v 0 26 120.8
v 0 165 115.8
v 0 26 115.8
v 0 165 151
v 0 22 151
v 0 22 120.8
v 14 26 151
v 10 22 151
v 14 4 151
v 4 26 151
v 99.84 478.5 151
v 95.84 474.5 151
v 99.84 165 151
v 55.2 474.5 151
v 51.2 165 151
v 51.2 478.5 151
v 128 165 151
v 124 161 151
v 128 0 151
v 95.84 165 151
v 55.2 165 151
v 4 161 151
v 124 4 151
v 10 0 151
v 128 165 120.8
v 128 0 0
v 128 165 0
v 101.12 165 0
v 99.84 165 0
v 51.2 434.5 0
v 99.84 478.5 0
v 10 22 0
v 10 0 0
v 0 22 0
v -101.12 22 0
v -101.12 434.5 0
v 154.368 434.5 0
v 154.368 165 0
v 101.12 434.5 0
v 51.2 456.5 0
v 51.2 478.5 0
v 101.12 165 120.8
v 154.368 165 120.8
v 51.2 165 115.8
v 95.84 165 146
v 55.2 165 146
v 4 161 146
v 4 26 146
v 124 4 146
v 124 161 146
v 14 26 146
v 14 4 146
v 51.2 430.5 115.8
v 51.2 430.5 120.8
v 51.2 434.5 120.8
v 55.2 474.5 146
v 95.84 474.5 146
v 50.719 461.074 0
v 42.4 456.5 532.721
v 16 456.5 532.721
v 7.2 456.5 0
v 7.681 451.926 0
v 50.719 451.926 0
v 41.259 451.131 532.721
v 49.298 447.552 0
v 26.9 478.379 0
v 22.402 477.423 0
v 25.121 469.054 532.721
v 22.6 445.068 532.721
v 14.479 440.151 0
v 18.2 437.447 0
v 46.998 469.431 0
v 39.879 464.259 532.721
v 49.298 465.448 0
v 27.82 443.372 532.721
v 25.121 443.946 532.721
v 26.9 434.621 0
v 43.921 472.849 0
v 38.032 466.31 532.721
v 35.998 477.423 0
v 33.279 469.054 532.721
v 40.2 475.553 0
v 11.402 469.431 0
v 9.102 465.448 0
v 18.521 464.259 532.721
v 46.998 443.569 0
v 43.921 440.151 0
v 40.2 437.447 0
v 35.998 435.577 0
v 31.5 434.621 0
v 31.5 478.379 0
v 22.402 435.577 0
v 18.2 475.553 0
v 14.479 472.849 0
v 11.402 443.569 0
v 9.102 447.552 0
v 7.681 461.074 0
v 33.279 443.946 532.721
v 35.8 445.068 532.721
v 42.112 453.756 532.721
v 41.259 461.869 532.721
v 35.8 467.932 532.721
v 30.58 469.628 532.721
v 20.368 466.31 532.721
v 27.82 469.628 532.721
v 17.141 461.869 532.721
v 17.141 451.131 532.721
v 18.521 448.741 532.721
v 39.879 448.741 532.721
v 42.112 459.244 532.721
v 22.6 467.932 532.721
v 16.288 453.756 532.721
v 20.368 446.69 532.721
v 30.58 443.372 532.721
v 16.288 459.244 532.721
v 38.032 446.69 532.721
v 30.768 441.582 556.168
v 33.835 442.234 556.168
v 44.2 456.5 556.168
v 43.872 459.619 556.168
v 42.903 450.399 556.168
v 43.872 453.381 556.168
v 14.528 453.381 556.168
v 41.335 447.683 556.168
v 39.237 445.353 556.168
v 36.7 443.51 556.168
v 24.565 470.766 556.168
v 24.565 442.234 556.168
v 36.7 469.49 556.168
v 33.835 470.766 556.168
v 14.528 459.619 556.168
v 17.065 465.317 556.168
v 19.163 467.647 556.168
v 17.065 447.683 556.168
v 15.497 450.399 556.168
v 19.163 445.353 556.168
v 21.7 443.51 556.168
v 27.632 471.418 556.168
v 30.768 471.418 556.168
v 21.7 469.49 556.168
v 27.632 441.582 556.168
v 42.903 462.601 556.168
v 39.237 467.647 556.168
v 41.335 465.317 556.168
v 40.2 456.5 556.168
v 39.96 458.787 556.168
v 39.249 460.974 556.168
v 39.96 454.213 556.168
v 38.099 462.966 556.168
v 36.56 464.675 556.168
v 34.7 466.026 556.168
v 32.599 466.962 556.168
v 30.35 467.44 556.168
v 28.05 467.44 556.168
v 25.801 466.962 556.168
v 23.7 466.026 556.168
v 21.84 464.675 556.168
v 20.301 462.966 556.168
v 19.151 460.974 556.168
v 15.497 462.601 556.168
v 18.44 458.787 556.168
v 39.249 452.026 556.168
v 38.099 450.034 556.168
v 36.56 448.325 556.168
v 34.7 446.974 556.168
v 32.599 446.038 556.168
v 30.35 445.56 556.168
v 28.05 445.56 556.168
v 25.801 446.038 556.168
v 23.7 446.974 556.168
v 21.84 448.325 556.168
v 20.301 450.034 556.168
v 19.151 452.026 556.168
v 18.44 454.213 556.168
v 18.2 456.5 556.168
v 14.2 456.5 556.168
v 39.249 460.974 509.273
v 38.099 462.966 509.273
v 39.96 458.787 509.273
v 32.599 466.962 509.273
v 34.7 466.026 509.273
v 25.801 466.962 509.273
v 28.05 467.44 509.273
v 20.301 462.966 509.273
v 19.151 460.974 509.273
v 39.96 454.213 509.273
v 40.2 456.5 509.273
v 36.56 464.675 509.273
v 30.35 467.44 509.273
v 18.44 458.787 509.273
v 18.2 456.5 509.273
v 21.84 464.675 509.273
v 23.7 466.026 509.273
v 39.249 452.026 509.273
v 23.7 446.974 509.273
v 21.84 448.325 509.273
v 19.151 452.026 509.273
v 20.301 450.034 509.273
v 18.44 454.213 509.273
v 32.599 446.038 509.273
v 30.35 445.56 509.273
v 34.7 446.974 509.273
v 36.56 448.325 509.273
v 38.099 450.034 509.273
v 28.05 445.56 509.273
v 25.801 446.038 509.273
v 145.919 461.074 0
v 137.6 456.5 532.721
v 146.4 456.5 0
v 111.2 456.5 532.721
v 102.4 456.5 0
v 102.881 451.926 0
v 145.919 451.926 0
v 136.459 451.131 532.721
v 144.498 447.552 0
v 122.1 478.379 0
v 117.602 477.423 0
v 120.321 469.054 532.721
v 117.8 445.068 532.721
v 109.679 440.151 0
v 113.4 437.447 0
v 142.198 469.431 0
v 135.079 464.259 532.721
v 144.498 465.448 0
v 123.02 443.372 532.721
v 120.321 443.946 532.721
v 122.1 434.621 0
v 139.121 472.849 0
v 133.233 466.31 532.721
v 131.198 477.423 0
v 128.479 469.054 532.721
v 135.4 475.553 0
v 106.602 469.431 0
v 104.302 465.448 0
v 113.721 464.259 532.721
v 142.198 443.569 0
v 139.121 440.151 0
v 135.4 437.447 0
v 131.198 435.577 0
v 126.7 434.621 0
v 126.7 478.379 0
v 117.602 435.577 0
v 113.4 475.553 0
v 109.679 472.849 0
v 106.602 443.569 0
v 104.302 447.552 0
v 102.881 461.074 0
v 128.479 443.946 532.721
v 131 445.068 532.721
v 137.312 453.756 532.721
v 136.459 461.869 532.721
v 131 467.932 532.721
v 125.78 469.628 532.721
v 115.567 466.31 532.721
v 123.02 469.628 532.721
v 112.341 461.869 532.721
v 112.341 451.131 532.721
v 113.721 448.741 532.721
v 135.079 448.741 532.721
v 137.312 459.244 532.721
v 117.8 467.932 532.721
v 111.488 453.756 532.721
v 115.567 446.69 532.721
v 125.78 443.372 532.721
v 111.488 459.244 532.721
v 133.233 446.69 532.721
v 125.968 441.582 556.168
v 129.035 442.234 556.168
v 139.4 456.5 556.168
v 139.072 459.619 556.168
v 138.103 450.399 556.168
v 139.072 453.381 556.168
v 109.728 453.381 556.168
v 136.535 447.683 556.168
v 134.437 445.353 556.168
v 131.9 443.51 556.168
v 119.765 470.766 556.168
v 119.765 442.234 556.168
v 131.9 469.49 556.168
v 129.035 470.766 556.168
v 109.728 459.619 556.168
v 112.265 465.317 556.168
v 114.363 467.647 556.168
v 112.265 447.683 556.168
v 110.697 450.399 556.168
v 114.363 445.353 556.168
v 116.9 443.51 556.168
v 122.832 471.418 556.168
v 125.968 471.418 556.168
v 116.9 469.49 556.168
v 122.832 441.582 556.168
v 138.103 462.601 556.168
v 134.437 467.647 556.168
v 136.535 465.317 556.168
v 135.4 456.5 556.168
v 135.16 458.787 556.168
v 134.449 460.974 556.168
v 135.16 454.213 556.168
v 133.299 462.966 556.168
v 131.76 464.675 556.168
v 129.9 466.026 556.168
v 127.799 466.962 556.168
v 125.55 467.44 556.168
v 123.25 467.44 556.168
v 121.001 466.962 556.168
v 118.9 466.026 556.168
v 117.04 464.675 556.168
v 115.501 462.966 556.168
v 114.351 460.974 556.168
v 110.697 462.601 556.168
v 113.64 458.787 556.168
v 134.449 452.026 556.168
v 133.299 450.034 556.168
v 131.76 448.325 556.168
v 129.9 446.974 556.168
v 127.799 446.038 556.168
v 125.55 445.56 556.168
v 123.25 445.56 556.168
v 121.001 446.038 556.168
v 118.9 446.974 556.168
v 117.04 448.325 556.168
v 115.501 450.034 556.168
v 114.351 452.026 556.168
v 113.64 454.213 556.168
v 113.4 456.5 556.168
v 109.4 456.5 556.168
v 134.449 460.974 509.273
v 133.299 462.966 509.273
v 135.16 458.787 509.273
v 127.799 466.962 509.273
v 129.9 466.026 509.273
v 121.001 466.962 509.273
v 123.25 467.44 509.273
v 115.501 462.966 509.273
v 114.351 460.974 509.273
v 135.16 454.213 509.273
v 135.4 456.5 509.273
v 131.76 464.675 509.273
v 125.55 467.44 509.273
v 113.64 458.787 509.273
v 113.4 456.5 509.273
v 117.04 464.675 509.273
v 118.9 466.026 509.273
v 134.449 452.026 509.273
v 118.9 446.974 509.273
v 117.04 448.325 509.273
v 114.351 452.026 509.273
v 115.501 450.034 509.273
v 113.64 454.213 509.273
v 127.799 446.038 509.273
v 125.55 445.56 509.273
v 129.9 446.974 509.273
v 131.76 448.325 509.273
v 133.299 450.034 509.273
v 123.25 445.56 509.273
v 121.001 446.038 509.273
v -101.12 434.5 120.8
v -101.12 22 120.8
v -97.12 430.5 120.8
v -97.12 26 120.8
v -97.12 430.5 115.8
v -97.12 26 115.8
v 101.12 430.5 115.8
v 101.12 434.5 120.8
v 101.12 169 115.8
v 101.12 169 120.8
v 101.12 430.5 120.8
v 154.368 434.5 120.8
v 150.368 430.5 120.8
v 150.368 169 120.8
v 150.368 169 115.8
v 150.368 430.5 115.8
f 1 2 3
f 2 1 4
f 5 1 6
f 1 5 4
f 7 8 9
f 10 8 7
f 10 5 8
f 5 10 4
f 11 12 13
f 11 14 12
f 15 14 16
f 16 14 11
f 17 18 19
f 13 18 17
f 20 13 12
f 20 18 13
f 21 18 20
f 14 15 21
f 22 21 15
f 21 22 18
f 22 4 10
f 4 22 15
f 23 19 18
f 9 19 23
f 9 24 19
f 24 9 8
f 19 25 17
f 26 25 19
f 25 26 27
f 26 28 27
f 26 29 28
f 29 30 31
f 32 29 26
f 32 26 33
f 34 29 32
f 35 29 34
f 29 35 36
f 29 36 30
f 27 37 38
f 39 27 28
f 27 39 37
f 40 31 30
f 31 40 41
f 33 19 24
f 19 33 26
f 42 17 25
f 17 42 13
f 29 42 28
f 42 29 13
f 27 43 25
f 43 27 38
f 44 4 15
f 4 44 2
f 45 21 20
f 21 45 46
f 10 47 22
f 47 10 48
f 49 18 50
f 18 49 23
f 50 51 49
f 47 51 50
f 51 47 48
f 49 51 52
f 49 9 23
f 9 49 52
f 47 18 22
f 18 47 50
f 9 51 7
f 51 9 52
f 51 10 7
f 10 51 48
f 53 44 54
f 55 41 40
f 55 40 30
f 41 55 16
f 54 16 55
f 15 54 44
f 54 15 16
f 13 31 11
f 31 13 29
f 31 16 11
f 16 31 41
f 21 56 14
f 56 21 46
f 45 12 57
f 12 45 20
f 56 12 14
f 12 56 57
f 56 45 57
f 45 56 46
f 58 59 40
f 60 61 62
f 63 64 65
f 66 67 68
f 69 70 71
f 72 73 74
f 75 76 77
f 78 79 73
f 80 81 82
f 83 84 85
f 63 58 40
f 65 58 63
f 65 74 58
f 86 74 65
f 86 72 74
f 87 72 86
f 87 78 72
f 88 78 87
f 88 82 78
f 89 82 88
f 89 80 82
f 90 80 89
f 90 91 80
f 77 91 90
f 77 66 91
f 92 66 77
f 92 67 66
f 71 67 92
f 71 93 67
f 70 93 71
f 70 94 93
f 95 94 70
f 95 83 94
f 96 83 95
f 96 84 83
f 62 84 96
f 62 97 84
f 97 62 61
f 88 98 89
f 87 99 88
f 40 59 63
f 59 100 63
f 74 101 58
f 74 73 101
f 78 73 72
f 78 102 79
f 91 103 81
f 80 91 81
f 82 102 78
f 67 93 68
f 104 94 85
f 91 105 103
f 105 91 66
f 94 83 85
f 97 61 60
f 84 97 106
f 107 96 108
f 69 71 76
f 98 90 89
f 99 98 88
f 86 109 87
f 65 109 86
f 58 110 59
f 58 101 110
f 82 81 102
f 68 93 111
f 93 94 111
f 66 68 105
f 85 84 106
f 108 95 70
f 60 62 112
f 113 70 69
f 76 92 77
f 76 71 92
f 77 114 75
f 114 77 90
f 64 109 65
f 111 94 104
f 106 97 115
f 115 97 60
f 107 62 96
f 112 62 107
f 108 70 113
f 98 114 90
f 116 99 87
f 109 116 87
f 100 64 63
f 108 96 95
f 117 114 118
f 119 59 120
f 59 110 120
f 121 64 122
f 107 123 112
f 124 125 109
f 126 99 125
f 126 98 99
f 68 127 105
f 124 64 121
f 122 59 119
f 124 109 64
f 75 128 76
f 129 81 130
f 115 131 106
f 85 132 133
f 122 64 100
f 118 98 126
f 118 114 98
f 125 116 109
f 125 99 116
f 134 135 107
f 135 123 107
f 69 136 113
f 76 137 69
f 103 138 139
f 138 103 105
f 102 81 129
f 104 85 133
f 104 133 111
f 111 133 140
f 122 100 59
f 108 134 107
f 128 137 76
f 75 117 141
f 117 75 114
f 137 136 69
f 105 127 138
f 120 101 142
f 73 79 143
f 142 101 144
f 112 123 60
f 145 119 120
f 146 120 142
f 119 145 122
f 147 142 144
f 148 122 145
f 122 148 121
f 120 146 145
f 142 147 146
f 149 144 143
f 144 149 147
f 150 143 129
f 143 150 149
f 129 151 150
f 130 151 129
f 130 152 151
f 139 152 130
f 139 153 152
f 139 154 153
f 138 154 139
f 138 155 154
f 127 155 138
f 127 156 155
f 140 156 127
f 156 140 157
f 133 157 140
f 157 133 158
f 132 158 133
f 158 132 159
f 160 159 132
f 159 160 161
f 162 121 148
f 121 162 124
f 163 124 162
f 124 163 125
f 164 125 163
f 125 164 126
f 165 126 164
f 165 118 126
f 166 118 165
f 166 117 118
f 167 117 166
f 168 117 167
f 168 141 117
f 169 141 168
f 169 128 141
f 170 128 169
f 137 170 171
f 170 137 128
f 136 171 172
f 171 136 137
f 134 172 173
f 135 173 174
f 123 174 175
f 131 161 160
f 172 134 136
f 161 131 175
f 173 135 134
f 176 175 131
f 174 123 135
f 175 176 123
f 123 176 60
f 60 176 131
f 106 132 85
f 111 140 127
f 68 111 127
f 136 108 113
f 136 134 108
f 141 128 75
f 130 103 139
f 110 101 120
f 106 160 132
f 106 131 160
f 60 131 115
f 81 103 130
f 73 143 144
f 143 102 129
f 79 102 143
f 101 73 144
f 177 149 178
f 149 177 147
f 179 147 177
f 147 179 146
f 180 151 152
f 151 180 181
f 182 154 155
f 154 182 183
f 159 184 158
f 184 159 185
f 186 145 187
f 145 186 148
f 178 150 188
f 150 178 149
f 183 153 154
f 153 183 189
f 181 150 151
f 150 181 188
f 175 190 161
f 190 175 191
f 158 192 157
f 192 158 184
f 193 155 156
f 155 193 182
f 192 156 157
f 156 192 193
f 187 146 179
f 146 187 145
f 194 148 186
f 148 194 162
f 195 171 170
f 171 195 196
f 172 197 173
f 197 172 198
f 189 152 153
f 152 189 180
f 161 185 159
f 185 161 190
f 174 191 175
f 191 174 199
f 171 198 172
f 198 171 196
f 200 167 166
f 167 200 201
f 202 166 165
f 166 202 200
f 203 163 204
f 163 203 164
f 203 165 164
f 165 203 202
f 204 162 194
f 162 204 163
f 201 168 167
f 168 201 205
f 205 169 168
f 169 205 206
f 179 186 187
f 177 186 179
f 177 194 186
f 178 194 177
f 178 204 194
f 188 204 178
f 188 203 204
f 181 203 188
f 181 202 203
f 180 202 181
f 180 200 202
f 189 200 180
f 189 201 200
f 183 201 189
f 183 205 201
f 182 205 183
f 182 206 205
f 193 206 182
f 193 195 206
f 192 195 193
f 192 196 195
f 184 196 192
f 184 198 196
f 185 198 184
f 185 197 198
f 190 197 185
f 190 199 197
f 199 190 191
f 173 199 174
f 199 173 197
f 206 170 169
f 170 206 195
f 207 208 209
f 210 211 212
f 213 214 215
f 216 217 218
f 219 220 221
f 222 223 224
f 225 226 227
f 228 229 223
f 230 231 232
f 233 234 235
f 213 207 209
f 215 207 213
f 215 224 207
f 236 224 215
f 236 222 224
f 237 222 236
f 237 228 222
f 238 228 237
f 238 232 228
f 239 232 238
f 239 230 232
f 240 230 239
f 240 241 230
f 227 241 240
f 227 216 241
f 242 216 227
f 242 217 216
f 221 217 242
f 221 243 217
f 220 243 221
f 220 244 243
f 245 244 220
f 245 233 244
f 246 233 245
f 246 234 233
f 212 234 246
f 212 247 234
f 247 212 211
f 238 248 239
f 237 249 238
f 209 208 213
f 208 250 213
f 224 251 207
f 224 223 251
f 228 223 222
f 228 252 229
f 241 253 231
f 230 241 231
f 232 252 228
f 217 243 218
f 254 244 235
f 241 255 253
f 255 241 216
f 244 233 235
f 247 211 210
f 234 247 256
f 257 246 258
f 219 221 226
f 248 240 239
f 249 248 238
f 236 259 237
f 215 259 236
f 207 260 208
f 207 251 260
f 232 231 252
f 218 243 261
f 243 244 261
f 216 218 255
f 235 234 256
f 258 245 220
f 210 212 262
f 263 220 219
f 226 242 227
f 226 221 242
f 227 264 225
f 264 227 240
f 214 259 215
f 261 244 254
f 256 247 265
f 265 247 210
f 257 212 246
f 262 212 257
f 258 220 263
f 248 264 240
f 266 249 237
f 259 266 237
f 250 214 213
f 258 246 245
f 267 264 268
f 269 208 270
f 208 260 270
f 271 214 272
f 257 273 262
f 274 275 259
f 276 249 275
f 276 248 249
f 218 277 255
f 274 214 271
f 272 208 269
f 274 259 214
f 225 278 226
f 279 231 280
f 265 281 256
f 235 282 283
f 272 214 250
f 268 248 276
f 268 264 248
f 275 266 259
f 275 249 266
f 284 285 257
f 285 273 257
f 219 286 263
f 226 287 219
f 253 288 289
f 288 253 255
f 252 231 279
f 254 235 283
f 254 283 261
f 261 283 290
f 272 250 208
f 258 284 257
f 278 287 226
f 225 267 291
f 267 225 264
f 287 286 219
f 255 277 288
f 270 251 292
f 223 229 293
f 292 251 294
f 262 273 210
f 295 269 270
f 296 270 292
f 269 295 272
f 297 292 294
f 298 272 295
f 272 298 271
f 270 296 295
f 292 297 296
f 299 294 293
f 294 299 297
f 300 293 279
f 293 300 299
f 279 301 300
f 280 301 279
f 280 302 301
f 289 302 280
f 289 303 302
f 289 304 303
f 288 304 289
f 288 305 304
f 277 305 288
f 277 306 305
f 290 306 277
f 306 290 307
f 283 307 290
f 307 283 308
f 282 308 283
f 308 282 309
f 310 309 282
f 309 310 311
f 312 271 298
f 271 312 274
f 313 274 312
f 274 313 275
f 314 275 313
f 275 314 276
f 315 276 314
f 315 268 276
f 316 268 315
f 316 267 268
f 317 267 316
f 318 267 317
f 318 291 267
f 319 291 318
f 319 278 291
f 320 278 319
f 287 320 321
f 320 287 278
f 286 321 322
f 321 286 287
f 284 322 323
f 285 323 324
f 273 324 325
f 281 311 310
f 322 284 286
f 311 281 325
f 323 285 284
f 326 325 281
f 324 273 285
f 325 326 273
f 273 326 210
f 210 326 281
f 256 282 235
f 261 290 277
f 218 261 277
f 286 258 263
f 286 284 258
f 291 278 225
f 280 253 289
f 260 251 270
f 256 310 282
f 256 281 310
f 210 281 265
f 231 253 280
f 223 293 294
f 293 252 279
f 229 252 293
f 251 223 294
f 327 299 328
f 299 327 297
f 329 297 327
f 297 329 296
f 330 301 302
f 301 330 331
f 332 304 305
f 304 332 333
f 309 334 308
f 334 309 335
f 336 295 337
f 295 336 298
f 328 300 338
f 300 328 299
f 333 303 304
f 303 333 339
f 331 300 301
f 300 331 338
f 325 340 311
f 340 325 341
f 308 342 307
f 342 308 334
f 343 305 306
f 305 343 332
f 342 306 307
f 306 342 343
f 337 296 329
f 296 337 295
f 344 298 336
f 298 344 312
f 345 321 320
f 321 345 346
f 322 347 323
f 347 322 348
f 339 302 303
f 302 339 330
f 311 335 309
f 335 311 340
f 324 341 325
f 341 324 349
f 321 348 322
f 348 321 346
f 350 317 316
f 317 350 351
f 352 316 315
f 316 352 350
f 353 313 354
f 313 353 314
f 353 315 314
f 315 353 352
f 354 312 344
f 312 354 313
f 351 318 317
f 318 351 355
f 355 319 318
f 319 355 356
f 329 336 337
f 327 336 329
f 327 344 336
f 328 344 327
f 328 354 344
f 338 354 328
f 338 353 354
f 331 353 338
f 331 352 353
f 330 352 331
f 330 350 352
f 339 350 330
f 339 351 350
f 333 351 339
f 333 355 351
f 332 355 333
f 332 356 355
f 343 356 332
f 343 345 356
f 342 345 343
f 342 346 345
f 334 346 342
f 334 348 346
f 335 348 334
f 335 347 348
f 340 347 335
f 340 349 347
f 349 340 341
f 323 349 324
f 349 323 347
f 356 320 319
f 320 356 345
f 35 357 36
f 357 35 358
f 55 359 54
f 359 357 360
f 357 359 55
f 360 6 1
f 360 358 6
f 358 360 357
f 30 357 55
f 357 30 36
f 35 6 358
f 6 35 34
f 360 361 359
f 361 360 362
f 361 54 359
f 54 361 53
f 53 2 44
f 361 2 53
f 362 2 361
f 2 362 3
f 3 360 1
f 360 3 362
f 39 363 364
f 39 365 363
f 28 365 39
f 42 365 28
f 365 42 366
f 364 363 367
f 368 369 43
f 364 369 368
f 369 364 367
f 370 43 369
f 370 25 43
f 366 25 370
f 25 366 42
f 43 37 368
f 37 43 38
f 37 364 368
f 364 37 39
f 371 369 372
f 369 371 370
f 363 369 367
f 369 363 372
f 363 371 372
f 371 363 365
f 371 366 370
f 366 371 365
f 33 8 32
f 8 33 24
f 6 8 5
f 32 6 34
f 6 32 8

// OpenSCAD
height = 151;
faceWidth = 128 ;
faceDepth = 165;
spineDepth = faceDepth * 1.90;
spineWidth = faceWidth * 0.38;
spineOffset = faceWidth * 0.41;
stackRadius = 22;
stackRadiusTop = 15;
stackHeight = height * 3.683229814;
capHeight = height * 0.1552795031;

sideHeight = height*.8;
leftWidth = faceWidth * 1.21;
rightWidth = faceWidth * .416;

crownWidth = 4;
crownHeight = 5;

//cube(size=[width, depth, height], center=false);
//translate([-width * leftWidthScale, 0, 0]) 
//	#cube(size=[width*leftWidthScale, depth, height], center=false);

difference(){
	coreStructure();
		cube(size=[10, stackRadius, height], center=false);
}

module coreStructure(){
	union(){
		faceBuilding();
		translate([faceWidth*.4, faceDepth, 0]) 
			spine();
		translate([faceWidth*.4 - stackRadius, faceDepth + spineDepth-stackRadius, 0]) 
			stack();
		translate([faceWidth *.8 + stackRadius , faceDepth + spineDepth-stackRadius, 0]) 
			stack();
		translate([-spineOffset - spineWidth, stackRadius, 0]) 
			#leftBuilding();
		translate([+spineOffset + spineWidth, faceDepth, 0]) 
			#rightBuilding();
	}
}

module faceBuilding(){
	union(){
		difference(){
			cube(size=[faceWidth, faceDepth, height], center=false);
			translate([crownWidth, crownWidth, height-crownHeight]) 
				cube(size=[faceWidth-crownWidth*2, faceDepth-crownWidth*2, crownHeight*2], center=false);		
		}
		translate([crownWidth, crownWidth, 0]) 
				#cube(size=[10, stackRadius, height], center=false);
	}
}

module spine(){
	difference(){
		cube(size=[spineWidth, spineDepth, height], center=false);	
		translate([crownWidth, 0, height-crownHeight]) 
			cube(size=[spineWidth-crownWidth*2, spineDepth-crownWidth, crownHeight*2], center=false);	
	}
}
module stack(){
	difference(){
		union(){		
			cylinder(r1=stackRadius, h=stackHeight-capHeight, r2=stackRadius*.6, center=false);
			translate([0, 0, stackHeight-capHeight]) 
				cylinder(r1=stackRadius*.6, h=capHeight, r2=stackRadiusTop, center=false);
		}
		translate([0, 0, stackHeight-capHeight*2])
			#cylinder(r=stackRadius*.5, h=capHeight*2,center=false);		
	}
}

module leftBuilding(){
	difference(){
		cube(size=[leftWidth, (faceDepth + spineDepth) - stackRadius*3, sideHeight], center=false);	
		translate([crownWidth, crownWidth, sideHeight-crownHeight]) 
			cube(size=[leftWidth-crownWidth, ((faceDepth + spineDepth) - stackRadius*3) - crownWidth * 2, crownHeight * 2], center=false);	
	}
}

module rightBuilding(){
	difference(){
		cube(size=[rightWidth, spineDepth - stackRadius * 2, sideHeight], center = false);
		translate([0, crownWidth, sideHeight-crownHeight]) 
			#cube(size=[rightWidth-crownWidth, (spineDepth - stackRadius * 2) - crownWidth * 2, crownHeight*2], center = false);
	}
}
